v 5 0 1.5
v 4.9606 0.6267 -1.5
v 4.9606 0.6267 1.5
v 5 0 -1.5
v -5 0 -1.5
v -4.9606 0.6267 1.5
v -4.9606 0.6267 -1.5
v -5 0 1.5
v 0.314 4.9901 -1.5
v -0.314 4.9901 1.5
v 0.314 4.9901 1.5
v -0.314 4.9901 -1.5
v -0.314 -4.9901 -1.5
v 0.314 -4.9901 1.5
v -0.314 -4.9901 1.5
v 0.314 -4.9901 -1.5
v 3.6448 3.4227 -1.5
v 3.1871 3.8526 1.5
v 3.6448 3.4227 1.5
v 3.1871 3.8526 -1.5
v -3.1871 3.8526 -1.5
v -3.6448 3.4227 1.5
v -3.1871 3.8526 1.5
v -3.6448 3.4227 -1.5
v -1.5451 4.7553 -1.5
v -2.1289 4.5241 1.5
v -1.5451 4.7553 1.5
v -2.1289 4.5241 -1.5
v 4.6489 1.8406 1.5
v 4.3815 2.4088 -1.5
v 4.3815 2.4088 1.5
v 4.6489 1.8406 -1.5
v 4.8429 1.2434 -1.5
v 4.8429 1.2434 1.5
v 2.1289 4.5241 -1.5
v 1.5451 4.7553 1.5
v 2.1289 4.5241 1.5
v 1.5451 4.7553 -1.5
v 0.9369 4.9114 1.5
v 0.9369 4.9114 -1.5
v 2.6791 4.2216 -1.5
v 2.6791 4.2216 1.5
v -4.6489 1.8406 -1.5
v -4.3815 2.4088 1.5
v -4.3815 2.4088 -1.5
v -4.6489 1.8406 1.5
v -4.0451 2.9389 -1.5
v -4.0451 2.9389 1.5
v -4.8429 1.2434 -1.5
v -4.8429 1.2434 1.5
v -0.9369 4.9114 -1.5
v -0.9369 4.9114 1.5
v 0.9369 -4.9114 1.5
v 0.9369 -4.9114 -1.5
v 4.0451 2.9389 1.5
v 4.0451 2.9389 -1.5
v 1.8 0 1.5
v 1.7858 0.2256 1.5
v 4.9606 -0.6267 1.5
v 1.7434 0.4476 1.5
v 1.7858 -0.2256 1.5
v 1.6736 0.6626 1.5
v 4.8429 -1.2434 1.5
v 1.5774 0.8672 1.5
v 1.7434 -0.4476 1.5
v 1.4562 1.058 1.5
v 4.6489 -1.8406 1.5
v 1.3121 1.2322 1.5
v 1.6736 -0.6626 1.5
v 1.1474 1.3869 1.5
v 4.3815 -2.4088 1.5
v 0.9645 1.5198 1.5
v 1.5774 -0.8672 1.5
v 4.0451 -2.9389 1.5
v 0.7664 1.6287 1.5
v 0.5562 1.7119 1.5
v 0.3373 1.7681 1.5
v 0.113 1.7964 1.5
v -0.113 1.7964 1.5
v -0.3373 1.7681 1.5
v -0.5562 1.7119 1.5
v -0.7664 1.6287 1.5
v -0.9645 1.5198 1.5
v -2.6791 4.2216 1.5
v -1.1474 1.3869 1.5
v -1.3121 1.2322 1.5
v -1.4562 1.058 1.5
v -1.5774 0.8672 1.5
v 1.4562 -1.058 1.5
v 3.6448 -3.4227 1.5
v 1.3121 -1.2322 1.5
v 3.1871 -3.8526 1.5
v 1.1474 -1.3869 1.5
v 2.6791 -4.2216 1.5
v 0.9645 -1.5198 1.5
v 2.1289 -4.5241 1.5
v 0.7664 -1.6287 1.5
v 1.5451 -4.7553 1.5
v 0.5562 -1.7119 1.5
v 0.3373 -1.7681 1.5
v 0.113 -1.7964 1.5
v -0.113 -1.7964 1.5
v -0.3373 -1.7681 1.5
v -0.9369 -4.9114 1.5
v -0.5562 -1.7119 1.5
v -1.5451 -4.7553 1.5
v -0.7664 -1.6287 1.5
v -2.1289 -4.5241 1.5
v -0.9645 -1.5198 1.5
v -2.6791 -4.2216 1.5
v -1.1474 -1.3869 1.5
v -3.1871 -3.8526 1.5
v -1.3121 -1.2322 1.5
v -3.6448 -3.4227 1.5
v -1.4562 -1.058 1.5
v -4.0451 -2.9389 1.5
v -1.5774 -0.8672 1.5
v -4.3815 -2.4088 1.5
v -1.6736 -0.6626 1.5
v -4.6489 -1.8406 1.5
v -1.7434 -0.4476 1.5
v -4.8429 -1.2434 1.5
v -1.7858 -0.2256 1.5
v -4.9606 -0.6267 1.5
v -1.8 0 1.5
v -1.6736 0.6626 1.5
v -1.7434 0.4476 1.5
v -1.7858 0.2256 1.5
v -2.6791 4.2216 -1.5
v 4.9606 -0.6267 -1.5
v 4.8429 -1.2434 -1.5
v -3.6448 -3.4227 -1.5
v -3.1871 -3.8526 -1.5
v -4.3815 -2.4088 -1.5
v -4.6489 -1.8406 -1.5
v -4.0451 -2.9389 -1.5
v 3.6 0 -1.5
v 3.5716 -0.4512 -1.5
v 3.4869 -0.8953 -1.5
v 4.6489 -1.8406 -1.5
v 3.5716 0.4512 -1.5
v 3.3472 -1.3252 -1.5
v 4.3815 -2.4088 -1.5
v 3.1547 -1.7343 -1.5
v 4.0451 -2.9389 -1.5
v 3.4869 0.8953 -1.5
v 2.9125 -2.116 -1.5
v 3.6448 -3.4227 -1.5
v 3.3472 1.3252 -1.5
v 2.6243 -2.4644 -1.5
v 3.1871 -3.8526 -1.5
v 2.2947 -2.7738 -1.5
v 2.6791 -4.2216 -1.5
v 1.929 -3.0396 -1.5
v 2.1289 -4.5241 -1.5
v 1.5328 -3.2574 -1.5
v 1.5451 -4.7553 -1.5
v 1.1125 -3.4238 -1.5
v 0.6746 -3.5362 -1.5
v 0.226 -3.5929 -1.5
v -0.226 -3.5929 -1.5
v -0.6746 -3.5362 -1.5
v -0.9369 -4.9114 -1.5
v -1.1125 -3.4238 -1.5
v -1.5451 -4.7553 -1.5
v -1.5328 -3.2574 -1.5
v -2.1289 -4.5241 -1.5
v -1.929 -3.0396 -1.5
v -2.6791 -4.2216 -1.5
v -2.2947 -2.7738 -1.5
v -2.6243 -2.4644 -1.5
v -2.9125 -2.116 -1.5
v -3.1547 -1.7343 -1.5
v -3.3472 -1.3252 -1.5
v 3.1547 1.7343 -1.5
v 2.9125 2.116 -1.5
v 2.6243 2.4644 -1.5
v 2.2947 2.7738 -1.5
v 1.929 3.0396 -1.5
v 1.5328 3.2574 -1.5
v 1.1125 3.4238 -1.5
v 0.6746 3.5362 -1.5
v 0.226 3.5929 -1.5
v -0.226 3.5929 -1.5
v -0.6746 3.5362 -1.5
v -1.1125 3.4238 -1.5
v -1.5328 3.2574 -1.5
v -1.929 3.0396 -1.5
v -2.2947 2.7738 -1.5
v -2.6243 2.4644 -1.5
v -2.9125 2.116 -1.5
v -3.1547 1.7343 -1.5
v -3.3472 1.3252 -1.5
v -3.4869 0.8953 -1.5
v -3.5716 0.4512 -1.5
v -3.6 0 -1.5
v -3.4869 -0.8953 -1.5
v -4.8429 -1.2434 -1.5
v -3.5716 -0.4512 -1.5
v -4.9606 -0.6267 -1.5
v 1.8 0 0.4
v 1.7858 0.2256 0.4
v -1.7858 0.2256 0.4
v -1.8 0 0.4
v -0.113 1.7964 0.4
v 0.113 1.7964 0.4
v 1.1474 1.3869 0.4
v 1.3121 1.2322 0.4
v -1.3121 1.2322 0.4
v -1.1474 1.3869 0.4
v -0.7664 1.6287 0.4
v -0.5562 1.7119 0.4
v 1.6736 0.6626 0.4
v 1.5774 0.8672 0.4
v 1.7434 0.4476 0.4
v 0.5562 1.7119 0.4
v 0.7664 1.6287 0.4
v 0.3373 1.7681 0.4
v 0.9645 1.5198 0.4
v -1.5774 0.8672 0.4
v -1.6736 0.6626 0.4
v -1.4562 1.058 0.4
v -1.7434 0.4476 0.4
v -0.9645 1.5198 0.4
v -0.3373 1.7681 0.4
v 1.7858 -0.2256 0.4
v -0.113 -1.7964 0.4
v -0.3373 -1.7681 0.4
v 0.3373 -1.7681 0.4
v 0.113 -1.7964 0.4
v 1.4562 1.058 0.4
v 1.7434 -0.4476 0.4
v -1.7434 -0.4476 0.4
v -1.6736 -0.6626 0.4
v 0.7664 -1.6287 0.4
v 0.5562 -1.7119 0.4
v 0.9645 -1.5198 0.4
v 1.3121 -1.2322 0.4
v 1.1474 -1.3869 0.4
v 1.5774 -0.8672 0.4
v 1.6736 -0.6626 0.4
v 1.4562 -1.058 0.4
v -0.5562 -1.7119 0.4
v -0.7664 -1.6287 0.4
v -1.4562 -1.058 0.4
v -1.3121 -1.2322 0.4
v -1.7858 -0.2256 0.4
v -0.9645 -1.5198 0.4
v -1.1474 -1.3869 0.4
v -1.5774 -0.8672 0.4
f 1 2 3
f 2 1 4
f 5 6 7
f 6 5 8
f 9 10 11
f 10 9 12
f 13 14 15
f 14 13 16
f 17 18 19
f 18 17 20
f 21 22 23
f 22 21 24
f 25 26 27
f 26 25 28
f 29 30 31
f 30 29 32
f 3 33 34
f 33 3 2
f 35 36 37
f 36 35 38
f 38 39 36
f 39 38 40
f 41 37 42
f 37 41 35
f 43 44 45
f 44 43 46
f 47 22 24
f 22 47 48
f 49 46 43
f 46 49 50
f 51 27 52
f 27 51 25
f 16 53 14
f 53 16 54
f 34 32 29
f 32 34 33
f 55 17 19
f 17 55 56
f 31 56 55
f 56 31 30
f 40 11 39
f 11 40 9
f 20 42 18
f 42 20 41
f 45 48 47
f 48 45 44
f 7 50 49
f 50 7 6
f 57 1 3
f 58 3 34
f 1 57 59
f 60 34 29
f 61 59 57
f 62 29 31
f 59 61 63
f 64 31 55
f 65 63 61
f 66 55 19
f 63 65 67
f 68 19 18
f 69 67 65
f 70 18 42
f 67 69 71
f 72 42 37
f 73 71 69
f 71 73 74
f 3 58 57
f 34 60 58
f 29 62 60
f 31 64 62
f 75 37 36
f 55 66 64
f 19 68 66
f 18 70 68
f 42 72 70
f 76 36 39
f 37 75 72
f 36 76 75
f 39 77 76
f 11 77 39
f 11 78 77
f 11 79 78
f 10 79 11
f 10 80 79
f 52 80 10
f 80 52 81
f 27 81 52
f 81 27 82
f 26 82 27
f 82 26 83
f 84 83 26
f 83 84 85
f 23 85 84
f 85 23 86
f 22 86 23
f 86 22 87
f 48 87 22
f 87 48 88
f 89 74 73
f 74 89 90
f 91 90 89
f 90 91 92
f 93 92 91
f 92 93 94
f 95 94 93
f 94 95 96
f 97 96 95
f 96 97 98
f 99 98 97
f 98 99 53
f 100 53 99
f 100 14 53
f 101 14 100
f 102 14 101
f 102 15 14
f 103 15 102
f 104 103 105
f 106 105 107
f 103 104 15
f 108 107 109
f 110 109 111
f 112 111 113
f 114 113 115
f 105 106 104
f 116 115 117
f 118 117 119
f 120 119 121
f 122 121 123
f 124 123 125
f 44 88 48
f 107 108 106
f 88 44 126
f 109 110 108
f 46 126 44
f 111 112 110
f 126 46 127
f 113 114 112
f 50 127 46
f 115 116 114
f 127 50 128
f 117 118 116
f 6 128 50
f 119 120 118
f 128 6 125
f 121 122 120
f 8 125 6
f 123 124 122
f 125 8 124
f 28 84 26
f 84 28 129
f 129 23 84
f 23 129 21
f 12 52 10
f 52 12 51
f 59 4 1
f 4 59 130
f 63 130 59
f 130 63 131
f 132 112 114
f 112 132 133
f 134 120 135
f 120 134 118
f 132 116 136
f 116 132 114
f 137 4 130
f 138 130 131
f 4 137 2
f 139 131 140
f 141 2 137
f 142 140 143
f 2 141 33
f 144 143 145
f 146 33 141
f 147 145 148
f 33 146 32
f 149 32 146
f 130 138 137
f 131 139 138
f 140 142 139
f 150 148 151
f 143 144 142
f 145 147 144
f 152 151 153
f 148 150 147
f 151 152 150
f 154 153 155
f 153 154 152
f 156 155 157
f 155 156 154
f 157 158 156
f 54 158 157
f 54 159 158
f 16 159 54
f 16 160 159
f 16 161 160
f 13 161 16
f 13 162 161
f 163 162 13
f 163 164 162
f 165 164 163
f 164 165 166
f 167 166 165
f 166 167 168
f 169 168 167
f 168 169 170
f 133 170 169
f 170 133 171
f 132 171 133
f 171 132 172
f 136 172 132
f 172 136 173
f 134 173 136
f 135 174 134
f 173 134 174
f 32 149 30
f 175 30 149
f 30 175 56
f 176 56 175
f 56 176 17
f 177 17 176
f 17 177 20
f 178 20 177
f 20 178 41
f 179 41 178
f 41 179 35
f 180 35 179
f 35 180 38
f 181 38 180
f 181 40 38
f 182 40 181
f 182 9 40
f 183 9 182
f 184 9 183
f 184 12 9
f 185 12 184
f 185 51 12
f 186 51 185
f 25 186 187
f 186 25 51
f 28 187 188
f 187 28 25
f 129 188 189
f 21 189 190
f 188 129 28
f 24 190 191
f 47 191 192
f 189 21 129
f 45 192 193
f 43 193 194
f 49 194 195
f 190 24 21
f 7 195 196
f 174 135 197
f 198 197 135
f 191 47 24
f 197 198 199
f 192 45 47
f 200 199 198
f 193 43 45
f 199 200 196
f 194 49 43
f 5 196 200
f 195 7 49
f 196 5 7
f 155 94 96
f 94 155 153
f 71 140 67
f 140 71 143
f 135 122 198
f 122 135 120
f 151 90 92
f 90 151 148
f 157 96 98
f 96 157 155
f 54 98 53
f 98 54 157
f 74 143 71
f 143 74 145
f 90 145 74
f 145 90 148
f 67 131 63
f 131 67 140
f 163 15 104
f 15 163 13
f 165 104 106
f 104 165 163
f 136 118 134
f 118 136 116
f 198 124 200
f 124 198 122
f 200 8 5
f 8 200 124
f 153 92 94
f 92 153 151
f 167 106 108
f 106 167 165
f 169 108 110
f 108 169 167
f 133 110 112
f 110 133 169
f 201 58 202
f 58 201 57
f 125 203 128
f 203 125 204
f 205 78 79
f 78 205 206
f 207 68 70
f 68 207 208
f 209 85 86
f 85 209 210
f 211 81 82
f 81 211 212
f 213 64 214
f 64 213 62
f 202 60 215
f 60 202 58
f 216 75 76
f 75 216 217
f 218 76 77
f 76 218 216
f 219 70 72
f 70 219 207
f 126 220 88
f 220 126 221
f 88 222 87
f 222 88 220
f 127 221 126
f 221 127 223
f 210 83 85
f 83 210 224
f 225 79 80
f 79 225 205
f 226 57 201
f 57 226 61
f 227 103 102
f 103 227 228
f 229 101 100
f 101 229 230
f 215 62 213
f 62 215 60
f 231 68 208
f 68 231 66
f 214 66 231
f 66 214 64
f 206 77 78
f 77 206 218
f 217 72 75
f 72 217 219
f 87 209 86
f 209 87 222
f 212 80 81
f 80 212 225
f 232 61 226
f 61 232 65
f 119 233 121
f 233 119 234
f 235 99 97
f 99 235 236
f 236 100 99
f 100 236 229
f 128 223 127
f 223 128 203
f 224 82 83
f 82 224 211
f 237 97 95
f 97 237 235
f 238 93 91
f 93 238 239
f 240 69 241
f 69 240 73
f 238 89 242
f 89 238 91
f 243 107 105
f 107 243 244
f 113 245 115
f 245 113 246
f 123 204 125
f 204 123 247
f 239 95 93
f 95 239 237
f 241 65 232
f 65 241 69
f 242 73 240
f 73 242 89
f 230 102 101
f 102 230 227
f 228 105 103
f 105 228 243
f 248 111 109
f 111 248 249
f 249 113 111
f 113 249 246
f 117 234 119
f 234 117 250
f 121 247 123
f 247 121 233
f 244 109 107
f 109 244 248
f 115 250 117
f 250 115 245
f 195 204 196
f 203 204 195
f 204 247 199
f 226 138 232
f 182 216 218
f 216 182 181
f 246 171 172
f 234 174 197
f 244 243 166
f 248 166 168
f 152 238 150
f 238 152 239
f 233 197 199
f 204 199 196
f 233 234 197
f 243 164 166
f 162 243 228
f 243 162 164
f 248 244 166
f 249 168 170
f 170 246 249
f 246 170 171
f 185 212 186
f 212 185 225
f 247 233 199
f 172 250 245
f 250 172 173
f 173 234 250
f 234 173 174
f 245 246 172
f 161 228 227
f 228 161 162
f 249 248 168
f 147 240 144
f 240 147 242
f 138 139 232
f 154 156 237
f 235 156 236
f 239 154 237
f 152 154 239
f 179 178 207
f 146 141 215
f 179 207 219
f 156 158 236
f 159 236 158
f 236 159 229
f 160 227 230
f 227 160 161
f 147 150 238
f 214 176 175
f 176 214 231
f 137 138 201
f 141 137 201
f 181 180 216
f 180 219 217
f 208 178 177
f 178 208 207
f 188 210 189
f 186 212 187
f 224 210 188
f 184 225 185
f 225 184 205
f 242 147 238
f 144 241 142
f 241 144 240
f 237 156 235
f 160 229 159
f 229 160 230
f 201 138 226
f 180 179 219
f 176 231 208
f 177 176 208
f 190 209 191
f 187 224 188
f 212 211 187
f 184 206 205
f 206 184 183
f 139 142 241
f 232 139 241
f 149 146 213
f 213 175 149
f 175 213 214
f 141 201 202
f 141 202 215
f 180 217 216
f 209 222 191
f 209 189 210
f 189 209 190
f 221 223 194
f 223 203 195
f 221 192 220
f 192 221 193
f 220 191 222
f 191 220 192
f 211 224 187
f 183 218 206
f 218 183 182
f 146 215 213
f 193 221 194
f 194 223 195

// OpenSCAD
$fn = 50;


difference() {
	union() {
		translate(v = [0, 0, -1.5000000000]) {
			rotate(a = [0, 0, 0]) {
				cylinder(h = 3, r = 5.0000000000);
			}
		}
		translate(v = [0, 0, -1.5000000000]) {
			rotate(a = [0, 0, 0]) {
				cylinder(h = 3, r = 2.8500000000);
			}
		}
	}
	union() {
		translate(v = [0, 0, -125.0000000000]) {
			rotate(a = [0, 0, 0]) {
				cylinder(h = 250, r = 1.8000000000);
			}
		}
		#translate(v = [0, 0, 0.4000000000]) {
			rotate(a = [0, 180, 0]) {
				cylinder(h = 1.9000000000, r1 = 1.8000000000, r2 = 3.6000000000);
			}
		}
		#translate(v = [0, 0, 1.5000000000]) {
			rotate(a = [0, 180, 0]) {
				cylinder(h = 3, r = 1.8000000000);
			}
		}
	}
}
